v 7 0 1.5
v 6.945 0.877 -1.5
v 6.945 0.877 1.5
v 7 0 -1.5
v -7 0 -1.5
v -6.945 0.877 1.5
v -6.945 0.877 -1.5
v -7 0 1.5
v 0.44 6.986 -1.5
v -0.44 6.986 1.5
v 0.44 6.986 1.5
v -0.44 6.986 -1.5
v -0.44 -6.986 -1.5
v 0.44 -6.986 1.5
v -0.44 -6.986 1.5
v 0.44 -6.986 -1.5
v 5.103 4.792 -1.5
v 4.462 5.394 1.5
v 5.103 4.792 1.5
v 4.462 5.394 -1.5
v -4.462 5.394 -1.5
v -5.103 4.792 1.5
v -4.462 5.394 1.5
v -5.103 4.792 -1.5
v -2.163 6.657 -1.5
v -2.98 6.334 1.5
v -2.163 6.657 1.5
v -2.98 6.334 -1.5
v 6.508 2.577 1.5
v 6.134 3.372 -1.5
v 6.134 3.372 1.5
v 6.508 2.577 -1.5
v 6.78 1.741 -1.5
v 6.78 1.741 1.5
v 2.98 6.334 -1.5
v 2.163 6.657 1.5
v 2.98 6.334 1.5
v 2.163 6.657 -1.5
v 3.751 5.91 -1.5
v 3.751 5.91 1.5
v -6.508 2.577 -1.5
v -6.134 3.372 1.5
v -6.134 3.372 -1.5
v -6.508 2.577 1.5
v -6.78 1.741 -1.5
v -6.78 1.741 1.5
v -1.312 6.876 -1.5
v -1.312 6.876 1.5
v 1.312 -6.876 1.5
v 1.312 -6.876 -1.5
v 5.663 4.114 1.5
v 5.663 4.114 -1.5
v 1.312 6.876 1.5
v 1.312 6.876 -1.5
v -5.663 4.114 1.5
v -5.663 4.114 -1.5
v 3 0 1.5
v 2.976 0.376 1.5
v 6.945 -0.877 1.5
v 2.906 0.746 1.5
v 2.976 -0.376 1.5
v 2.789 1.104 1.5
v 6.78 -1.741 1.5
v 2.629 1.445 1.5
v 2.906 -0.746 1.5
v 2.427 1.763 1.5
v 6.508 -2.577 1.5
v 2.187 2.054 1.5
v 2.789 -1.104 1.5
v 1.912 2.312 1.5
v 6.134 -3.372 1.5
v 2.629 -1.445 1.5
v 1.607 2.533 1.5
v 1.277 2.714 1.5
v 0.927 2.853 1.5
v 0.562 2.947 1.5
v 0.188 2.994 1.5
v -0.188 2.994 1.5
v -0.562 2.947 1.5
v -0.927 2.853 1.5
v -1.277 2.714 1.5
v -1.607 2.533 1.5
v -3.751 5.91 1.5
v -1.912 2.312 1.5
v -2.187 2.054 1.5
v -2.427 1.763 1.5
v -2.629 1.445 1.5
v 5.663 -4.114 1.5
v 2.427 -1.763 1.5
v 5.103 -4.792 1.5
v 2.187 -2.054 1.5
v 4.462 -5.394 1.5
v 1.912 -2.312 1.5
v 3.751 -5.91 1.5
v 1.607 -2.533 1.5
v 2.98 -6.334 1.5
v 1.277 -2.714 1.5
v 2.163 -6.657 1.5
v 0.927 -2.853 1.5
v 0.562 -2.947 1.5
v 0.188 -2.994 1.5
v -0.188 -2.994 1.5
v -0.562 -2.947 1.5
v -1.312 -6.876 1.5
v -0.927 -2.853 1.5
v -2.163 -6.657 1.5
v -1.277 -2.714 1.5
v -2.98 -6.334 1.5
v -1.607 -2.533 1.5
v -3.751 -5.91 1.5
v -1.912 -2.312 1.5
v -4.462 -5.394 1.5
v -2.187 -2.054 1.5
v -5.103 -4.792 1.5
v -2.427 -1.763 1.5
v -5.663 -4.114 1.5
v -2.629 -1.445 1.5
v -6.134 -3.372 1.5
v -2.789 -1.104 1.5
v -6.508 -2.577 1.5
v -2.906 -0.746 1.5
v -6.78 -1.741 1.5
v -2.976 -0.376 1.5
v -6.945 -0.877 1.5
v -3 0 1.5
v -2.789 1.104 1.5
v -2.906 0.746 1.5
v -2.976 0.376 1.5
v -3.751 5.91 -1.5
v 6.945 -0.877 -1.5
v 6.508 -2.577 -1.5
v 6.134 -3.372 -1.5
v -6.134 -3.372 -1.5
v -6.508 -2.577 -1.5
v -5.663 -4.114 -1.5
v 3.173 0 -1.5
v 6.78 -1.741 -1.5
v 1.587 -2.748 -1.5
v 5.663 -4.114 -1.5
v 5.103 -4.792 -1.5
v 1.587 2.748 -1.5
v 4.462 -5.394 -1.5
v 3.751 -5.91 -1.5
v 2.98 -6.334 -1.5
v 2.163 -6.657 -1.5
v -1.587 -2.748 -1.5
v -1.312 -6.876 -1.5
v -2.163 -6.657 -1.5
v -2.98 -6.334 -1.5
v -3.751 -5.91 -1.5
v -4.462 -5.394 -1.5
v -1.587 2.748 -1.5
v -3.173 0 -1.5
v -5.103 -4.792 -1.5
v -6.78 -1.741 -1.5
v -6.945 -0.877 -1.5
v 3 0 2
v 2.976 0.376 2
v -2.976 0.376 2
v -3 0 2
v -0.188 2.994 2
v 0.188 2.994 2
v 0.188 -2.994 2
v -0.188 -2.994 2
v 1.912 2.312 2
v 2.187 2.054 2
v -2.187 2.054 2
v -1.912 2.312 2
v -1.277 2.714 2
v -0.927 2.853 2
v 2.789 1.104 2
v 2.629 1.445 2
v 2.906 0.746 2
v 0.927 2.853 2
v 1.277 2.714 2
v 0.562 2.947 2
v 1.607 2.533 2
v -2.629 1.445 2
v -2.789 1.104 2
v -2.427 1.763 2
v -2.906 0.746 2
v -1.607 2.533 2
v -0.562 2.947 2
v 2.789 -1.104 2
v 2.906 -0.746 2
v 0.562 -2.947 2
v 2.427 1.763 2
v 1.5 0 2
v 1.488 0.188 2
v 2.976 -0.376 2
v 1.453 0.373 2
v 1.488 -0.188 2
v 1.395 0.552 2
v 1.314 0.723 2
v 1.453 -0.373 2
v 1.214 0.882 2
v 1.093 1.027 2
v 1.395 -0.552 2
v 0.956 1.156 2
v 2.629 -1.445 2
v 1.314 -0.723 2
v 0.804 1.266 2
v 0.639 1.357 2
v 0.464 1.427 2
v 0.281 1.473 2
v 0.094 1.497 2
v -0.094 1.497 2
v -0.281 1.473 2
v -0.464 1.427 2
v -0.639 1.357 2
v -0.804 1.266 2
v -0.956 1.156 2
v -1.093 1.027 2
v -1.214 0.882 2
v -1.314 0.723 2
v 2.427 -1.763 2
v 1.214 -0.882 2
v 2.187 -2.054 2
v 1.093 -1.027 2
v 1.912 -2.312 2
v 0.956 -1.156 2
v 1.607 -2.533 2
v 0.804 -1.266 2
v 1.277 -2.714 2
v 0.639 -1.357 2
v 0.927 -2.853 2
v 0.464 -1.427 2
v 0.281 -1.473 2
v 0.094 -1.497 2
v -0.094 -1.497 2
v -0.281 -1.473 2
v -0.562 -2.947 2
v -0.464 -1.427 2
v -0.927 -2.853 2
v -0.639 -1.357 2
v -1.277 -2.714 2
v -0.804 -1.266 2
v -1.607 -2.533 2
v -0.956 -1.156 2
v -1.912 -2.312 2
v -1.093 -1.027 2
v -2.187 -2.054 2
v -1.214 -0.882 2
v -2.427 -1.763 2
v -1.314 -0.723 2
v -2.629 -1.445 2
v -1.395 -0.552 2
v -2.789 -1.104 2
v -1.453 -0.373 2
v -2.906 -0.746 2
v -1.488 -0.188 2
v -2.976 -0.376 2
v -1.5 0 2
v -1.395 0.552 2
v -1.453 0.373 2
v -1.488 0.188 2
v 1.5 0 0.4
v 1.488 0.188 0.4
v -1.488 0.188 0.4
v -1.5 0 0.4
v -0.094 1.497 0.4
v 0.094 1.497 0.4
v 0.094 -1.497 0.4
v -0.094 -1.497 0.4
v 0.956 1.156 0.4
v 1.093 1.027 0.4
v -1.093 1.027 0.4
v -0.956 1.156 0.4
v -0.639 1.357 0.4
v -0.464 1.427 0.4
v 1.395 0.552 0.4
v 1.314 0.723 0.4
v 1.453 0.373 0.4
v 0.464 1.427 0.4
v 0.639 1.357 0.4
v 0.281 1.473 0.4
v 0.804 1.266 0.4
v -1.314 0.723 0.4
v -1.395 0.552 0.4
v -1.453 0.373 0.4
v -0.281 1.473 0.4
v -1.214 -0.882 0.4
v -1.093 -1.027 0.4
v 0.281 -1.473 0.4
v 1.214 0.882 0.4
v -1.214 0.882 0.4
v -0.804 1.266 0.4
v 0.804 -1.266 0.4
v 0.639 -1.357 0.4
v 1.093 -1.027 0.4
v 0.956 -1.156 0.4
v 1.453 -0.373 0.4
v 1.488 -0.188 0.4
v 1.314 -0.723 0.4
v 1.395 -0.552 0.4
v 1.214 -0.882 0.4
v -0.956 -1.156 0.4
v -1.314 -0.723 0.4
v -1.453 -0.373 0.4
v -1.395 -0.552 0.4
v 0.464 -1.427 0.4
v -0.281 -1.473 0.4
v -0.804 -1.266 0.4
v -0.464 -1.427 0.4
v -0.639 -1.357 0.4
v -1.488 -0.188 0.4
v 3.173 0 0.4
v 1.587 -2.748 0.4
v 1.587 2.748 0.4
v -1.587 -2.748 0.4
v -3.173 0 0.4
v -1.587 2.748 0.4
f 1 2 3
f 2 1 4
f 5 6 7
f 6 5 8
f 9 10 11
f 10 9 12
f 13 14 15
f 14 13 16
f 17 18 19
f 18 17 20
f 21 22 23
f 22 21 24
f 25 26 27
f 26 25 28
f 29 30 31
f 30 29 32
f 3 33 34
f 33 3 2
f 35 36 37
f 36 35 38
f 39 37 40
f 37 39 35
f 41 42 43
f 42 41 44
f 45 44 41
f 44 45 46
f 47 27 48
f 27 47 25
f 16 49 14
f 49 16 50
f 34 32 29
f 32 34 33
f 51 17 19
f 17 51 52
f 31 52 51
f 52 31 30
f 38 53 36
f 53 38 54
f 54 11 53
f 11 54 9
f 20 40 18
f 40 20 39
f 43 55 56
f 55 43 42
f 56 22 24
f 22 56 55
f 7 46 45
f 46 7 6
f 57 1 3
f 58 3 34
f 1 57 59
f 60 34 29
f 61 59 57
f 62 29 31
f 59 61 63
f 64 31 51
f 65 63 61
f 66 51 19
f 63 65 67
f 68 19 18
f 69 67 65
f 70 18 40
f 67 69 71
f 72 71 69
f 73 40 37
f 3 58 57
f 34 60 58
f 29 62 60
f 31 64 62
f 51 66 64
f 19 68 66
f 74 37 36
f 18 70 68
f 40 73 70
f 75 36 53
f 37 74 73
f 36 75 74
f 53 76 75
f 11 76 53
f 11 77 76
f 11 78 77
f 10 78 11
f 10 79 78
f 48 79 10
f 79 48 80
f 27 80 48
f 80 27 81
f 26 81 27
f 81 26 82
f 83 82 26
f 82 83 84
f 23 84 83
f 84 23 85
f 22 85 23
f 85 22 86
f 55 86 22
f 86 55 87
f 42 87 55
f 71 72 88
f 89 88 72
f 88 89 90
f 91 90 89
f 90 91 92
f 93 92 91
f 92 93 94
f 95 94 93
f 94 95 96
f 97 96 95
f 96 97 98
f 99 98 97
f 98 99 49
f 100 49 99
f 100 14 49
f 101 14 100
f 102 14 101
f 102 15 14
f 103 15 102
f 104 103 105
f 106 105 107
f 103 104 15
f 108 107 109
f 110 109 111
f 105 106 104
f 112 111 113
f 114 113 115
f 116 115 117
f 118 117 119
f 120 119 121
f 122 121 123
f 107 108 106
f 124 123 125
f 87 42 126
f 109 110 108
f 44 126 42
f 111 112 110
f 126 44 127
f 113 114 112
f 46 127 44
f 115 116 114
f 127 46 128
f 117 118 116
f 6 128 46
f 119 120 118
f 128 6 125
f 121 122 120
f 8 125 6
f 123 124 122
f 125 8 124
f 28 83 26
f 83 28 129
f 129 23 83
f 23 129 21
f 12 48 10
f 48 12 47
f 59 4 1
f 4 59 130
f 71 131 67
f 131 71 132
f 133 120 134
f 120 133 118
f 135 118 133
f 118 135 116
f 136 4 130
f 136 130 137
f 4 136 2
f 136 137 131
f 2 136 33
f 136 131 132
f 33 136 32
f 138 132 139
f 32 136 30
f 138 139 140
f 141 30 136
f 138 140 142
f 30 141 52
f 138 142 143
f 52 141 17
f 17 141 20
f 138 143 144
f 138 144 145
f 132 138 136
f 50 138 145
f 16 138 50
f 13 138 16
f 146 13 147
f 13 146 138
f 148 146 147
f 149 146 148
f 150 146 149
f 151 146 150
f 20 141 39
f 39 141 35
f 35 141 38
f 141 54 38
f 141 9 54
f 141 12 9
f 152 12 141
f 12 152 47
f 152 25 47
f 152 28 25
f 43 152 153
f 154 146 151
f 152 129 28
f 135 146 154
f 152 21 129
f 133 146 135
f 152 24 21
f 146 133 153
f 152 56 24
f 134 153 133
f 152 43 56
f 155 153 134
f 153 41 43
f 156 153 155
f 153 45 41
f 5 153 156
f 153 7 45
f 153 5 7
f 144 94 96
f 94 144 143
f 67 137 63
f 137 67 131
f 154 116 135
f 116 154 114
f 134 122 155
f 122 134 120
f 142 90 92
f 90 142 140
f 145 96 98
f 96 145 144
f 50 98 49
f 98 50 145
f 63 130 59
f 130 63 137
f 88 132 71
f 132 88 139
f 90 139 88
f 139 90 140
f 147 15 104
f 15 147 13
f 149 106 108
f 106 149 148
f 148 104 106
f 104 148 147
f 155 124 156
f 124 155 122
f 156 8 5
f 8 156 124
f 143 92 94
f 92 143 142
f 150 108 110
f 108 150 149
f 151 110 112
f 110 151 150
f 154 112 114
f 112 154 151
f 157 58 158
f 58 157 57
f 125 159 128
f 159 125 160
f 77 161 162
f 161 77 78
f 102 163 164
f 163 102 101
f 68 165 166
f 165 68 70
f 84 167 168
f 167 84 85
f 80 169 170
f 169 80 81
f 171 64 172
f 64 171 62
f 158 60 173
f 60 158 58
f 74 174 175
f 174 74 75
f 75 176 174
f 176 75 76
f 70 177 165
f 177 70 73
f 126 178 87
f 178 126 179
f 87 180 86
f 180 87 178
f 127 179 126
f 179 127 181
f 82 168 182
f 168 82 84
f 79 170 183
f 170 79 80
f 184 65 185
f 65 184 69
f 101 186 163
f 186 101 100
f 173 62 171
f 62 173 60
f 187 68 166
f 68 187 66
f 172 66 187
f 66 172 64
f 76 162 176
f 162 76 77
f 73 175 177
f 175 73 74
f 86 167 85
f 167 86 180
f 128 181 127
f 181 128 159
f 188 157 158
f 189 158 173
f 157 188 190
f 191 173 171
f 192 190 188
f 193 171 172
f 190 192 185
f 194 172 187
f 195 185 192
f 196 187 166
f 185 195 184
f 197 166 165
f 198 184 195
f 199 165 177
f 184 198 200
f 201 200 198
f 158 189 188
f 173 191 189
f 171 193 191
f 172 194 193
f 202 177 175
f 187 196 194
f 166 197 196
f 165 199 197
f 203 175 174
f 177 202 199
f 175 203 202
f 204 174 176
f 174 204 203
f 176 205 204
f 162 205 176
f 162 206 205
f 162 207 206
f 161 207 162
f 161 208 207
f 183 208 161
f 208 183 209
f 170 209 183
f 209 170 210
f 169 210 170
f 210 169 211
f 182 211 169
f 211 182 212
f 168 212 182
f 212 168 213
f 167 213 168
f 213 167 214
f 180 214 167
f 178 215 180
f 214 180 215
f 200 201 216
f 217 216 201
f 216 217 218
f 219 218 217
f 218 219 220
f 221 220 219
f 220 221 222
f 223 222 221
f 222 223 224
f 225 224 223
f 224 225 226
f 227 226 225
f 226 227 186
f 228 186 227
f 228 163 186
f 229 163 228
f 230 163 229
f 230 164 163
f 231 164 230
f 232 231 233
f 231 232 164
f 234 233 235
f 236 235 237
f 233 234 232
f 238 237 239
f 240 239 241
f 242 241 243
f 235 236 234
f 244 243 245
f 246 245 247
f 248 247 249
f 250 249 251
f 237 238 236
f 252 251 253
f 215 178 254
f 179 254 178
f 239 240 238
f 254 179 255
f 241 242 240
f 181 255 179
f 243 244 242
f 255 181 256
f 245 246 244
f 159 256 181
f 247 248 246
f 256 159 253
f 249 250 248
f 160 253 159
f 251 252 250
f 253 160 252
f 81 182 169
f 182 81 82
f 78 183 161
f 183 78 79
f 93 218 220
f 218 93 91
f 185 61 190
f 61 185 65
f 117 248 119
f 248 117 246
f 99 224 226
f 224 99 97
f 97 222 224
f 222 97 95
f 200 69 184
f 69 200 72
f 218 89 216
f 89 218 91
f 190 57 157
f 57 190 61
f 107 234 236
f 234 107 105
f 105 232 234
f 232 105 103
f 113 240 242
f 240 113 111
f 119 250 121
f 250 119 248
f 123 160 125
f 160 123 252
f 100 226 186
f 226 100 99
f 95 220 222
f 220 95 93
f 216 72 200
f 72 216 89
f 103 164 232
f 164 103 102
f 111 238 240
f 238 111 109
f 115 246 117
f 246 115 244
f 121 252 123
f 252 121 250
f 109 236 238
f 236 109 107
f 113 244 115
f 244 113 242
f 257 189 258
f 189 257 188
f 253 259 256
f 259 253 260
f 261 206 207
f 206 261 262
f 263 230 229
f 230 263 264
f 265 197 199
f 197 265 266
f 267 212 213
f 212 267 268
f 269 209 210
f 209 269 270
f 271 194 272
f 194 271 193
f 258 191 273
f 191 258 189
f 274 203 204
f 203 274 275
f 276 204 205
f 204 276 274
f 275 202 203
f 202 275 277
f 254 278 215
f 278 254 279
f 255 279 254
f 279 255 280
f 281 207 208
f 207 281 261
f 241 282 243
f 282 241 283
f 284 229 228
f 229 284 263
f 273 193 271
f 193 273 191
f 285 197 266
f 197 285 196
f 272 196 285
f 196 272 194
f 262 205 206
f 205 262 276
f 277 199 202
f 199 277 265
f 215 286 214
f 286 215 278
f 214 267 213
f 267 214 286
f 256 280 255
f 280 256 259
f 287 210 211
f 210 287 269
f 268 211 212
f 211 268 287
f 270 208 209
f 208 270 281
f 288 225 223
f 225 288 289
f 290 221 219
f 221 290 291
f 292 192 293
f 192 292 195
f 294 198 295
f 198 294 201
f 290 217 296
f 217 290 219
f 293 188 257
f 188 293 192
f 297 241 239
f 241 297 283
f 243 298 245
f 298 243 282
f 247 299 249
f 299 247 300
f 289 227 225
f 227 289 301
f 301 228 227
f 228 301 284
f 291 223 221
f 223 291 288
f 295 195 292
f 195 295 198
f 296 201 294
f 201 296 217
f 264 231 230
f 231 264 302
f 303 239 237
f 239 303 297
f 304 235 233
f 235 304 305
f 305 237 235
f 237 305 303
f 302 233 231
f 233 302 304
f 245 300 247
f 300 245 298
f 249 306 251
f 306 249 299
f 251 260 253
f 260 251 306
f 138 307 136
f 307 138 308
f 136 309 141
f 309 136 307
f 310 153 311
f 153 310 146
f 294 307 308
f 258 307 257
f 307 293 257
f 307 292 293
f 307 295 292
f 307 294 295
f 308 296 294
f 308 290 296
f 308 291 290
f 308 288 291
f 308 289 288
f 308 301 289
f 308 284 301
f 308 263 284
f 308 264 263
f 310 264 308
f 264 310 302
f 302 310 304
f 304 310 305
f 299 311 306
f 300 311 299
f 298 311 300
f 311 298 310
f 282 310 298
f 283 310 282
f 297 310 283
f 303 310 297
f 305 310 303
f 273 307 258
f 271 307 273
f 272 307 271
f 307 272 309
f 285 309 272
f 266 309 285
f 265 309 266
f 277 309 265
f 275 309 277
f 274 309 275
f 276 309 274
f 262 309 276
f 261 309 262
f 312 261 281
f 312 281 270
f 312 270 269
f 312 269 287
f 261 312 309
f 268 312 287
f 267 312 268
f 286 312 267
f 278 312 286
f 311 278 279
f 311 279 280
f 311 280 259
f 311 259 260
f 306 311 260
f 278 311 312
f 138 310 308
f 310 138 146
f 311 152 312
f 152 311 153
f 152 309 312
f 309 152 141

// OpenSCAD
$fn = 50;


difference() {
	union() {
		translate(v = [0, 0, -1.5000000000]) {
			rotate(a = [0, 0, 0]) {
				cylinder(h = 3, r = 7.0000000000);
			}
		}
		translate(v = [0, 0, -1.5000000000]) {
			rotate(a = [0, 0, 0]) {
				cylinder(h = 3.5000000000, r = 3.0000000000);
			}
		}
	}
	union() {
		translate(v = [0, 0, -125.0000000000]) {
			rotate(a = [0, 0, 0]) {
				cylinder(h = 250, r = 1.5000000000);
			}
		}
		translate(v = [0, 0, -2.1000000000]) {
			rotate(a = [0, 0, 0]) {
				#translate(v = [0, 0, 0]) {
					rotate(a = [0, 0, 0]) {
						linear_extrude(height = 2.5000000000) {
							polygon(points = [[3.1735000000, 0.0000000000], [1.5867500000, 2.7483316189], [-1.5867500000, 2.7483316189], [-3.1735000000, 0.0000000000], [-1.5867500000, -2.7483316189], [1.5867500000, -2.7483316189]]);
						}
					}
				}
			}
		}
	}
}
